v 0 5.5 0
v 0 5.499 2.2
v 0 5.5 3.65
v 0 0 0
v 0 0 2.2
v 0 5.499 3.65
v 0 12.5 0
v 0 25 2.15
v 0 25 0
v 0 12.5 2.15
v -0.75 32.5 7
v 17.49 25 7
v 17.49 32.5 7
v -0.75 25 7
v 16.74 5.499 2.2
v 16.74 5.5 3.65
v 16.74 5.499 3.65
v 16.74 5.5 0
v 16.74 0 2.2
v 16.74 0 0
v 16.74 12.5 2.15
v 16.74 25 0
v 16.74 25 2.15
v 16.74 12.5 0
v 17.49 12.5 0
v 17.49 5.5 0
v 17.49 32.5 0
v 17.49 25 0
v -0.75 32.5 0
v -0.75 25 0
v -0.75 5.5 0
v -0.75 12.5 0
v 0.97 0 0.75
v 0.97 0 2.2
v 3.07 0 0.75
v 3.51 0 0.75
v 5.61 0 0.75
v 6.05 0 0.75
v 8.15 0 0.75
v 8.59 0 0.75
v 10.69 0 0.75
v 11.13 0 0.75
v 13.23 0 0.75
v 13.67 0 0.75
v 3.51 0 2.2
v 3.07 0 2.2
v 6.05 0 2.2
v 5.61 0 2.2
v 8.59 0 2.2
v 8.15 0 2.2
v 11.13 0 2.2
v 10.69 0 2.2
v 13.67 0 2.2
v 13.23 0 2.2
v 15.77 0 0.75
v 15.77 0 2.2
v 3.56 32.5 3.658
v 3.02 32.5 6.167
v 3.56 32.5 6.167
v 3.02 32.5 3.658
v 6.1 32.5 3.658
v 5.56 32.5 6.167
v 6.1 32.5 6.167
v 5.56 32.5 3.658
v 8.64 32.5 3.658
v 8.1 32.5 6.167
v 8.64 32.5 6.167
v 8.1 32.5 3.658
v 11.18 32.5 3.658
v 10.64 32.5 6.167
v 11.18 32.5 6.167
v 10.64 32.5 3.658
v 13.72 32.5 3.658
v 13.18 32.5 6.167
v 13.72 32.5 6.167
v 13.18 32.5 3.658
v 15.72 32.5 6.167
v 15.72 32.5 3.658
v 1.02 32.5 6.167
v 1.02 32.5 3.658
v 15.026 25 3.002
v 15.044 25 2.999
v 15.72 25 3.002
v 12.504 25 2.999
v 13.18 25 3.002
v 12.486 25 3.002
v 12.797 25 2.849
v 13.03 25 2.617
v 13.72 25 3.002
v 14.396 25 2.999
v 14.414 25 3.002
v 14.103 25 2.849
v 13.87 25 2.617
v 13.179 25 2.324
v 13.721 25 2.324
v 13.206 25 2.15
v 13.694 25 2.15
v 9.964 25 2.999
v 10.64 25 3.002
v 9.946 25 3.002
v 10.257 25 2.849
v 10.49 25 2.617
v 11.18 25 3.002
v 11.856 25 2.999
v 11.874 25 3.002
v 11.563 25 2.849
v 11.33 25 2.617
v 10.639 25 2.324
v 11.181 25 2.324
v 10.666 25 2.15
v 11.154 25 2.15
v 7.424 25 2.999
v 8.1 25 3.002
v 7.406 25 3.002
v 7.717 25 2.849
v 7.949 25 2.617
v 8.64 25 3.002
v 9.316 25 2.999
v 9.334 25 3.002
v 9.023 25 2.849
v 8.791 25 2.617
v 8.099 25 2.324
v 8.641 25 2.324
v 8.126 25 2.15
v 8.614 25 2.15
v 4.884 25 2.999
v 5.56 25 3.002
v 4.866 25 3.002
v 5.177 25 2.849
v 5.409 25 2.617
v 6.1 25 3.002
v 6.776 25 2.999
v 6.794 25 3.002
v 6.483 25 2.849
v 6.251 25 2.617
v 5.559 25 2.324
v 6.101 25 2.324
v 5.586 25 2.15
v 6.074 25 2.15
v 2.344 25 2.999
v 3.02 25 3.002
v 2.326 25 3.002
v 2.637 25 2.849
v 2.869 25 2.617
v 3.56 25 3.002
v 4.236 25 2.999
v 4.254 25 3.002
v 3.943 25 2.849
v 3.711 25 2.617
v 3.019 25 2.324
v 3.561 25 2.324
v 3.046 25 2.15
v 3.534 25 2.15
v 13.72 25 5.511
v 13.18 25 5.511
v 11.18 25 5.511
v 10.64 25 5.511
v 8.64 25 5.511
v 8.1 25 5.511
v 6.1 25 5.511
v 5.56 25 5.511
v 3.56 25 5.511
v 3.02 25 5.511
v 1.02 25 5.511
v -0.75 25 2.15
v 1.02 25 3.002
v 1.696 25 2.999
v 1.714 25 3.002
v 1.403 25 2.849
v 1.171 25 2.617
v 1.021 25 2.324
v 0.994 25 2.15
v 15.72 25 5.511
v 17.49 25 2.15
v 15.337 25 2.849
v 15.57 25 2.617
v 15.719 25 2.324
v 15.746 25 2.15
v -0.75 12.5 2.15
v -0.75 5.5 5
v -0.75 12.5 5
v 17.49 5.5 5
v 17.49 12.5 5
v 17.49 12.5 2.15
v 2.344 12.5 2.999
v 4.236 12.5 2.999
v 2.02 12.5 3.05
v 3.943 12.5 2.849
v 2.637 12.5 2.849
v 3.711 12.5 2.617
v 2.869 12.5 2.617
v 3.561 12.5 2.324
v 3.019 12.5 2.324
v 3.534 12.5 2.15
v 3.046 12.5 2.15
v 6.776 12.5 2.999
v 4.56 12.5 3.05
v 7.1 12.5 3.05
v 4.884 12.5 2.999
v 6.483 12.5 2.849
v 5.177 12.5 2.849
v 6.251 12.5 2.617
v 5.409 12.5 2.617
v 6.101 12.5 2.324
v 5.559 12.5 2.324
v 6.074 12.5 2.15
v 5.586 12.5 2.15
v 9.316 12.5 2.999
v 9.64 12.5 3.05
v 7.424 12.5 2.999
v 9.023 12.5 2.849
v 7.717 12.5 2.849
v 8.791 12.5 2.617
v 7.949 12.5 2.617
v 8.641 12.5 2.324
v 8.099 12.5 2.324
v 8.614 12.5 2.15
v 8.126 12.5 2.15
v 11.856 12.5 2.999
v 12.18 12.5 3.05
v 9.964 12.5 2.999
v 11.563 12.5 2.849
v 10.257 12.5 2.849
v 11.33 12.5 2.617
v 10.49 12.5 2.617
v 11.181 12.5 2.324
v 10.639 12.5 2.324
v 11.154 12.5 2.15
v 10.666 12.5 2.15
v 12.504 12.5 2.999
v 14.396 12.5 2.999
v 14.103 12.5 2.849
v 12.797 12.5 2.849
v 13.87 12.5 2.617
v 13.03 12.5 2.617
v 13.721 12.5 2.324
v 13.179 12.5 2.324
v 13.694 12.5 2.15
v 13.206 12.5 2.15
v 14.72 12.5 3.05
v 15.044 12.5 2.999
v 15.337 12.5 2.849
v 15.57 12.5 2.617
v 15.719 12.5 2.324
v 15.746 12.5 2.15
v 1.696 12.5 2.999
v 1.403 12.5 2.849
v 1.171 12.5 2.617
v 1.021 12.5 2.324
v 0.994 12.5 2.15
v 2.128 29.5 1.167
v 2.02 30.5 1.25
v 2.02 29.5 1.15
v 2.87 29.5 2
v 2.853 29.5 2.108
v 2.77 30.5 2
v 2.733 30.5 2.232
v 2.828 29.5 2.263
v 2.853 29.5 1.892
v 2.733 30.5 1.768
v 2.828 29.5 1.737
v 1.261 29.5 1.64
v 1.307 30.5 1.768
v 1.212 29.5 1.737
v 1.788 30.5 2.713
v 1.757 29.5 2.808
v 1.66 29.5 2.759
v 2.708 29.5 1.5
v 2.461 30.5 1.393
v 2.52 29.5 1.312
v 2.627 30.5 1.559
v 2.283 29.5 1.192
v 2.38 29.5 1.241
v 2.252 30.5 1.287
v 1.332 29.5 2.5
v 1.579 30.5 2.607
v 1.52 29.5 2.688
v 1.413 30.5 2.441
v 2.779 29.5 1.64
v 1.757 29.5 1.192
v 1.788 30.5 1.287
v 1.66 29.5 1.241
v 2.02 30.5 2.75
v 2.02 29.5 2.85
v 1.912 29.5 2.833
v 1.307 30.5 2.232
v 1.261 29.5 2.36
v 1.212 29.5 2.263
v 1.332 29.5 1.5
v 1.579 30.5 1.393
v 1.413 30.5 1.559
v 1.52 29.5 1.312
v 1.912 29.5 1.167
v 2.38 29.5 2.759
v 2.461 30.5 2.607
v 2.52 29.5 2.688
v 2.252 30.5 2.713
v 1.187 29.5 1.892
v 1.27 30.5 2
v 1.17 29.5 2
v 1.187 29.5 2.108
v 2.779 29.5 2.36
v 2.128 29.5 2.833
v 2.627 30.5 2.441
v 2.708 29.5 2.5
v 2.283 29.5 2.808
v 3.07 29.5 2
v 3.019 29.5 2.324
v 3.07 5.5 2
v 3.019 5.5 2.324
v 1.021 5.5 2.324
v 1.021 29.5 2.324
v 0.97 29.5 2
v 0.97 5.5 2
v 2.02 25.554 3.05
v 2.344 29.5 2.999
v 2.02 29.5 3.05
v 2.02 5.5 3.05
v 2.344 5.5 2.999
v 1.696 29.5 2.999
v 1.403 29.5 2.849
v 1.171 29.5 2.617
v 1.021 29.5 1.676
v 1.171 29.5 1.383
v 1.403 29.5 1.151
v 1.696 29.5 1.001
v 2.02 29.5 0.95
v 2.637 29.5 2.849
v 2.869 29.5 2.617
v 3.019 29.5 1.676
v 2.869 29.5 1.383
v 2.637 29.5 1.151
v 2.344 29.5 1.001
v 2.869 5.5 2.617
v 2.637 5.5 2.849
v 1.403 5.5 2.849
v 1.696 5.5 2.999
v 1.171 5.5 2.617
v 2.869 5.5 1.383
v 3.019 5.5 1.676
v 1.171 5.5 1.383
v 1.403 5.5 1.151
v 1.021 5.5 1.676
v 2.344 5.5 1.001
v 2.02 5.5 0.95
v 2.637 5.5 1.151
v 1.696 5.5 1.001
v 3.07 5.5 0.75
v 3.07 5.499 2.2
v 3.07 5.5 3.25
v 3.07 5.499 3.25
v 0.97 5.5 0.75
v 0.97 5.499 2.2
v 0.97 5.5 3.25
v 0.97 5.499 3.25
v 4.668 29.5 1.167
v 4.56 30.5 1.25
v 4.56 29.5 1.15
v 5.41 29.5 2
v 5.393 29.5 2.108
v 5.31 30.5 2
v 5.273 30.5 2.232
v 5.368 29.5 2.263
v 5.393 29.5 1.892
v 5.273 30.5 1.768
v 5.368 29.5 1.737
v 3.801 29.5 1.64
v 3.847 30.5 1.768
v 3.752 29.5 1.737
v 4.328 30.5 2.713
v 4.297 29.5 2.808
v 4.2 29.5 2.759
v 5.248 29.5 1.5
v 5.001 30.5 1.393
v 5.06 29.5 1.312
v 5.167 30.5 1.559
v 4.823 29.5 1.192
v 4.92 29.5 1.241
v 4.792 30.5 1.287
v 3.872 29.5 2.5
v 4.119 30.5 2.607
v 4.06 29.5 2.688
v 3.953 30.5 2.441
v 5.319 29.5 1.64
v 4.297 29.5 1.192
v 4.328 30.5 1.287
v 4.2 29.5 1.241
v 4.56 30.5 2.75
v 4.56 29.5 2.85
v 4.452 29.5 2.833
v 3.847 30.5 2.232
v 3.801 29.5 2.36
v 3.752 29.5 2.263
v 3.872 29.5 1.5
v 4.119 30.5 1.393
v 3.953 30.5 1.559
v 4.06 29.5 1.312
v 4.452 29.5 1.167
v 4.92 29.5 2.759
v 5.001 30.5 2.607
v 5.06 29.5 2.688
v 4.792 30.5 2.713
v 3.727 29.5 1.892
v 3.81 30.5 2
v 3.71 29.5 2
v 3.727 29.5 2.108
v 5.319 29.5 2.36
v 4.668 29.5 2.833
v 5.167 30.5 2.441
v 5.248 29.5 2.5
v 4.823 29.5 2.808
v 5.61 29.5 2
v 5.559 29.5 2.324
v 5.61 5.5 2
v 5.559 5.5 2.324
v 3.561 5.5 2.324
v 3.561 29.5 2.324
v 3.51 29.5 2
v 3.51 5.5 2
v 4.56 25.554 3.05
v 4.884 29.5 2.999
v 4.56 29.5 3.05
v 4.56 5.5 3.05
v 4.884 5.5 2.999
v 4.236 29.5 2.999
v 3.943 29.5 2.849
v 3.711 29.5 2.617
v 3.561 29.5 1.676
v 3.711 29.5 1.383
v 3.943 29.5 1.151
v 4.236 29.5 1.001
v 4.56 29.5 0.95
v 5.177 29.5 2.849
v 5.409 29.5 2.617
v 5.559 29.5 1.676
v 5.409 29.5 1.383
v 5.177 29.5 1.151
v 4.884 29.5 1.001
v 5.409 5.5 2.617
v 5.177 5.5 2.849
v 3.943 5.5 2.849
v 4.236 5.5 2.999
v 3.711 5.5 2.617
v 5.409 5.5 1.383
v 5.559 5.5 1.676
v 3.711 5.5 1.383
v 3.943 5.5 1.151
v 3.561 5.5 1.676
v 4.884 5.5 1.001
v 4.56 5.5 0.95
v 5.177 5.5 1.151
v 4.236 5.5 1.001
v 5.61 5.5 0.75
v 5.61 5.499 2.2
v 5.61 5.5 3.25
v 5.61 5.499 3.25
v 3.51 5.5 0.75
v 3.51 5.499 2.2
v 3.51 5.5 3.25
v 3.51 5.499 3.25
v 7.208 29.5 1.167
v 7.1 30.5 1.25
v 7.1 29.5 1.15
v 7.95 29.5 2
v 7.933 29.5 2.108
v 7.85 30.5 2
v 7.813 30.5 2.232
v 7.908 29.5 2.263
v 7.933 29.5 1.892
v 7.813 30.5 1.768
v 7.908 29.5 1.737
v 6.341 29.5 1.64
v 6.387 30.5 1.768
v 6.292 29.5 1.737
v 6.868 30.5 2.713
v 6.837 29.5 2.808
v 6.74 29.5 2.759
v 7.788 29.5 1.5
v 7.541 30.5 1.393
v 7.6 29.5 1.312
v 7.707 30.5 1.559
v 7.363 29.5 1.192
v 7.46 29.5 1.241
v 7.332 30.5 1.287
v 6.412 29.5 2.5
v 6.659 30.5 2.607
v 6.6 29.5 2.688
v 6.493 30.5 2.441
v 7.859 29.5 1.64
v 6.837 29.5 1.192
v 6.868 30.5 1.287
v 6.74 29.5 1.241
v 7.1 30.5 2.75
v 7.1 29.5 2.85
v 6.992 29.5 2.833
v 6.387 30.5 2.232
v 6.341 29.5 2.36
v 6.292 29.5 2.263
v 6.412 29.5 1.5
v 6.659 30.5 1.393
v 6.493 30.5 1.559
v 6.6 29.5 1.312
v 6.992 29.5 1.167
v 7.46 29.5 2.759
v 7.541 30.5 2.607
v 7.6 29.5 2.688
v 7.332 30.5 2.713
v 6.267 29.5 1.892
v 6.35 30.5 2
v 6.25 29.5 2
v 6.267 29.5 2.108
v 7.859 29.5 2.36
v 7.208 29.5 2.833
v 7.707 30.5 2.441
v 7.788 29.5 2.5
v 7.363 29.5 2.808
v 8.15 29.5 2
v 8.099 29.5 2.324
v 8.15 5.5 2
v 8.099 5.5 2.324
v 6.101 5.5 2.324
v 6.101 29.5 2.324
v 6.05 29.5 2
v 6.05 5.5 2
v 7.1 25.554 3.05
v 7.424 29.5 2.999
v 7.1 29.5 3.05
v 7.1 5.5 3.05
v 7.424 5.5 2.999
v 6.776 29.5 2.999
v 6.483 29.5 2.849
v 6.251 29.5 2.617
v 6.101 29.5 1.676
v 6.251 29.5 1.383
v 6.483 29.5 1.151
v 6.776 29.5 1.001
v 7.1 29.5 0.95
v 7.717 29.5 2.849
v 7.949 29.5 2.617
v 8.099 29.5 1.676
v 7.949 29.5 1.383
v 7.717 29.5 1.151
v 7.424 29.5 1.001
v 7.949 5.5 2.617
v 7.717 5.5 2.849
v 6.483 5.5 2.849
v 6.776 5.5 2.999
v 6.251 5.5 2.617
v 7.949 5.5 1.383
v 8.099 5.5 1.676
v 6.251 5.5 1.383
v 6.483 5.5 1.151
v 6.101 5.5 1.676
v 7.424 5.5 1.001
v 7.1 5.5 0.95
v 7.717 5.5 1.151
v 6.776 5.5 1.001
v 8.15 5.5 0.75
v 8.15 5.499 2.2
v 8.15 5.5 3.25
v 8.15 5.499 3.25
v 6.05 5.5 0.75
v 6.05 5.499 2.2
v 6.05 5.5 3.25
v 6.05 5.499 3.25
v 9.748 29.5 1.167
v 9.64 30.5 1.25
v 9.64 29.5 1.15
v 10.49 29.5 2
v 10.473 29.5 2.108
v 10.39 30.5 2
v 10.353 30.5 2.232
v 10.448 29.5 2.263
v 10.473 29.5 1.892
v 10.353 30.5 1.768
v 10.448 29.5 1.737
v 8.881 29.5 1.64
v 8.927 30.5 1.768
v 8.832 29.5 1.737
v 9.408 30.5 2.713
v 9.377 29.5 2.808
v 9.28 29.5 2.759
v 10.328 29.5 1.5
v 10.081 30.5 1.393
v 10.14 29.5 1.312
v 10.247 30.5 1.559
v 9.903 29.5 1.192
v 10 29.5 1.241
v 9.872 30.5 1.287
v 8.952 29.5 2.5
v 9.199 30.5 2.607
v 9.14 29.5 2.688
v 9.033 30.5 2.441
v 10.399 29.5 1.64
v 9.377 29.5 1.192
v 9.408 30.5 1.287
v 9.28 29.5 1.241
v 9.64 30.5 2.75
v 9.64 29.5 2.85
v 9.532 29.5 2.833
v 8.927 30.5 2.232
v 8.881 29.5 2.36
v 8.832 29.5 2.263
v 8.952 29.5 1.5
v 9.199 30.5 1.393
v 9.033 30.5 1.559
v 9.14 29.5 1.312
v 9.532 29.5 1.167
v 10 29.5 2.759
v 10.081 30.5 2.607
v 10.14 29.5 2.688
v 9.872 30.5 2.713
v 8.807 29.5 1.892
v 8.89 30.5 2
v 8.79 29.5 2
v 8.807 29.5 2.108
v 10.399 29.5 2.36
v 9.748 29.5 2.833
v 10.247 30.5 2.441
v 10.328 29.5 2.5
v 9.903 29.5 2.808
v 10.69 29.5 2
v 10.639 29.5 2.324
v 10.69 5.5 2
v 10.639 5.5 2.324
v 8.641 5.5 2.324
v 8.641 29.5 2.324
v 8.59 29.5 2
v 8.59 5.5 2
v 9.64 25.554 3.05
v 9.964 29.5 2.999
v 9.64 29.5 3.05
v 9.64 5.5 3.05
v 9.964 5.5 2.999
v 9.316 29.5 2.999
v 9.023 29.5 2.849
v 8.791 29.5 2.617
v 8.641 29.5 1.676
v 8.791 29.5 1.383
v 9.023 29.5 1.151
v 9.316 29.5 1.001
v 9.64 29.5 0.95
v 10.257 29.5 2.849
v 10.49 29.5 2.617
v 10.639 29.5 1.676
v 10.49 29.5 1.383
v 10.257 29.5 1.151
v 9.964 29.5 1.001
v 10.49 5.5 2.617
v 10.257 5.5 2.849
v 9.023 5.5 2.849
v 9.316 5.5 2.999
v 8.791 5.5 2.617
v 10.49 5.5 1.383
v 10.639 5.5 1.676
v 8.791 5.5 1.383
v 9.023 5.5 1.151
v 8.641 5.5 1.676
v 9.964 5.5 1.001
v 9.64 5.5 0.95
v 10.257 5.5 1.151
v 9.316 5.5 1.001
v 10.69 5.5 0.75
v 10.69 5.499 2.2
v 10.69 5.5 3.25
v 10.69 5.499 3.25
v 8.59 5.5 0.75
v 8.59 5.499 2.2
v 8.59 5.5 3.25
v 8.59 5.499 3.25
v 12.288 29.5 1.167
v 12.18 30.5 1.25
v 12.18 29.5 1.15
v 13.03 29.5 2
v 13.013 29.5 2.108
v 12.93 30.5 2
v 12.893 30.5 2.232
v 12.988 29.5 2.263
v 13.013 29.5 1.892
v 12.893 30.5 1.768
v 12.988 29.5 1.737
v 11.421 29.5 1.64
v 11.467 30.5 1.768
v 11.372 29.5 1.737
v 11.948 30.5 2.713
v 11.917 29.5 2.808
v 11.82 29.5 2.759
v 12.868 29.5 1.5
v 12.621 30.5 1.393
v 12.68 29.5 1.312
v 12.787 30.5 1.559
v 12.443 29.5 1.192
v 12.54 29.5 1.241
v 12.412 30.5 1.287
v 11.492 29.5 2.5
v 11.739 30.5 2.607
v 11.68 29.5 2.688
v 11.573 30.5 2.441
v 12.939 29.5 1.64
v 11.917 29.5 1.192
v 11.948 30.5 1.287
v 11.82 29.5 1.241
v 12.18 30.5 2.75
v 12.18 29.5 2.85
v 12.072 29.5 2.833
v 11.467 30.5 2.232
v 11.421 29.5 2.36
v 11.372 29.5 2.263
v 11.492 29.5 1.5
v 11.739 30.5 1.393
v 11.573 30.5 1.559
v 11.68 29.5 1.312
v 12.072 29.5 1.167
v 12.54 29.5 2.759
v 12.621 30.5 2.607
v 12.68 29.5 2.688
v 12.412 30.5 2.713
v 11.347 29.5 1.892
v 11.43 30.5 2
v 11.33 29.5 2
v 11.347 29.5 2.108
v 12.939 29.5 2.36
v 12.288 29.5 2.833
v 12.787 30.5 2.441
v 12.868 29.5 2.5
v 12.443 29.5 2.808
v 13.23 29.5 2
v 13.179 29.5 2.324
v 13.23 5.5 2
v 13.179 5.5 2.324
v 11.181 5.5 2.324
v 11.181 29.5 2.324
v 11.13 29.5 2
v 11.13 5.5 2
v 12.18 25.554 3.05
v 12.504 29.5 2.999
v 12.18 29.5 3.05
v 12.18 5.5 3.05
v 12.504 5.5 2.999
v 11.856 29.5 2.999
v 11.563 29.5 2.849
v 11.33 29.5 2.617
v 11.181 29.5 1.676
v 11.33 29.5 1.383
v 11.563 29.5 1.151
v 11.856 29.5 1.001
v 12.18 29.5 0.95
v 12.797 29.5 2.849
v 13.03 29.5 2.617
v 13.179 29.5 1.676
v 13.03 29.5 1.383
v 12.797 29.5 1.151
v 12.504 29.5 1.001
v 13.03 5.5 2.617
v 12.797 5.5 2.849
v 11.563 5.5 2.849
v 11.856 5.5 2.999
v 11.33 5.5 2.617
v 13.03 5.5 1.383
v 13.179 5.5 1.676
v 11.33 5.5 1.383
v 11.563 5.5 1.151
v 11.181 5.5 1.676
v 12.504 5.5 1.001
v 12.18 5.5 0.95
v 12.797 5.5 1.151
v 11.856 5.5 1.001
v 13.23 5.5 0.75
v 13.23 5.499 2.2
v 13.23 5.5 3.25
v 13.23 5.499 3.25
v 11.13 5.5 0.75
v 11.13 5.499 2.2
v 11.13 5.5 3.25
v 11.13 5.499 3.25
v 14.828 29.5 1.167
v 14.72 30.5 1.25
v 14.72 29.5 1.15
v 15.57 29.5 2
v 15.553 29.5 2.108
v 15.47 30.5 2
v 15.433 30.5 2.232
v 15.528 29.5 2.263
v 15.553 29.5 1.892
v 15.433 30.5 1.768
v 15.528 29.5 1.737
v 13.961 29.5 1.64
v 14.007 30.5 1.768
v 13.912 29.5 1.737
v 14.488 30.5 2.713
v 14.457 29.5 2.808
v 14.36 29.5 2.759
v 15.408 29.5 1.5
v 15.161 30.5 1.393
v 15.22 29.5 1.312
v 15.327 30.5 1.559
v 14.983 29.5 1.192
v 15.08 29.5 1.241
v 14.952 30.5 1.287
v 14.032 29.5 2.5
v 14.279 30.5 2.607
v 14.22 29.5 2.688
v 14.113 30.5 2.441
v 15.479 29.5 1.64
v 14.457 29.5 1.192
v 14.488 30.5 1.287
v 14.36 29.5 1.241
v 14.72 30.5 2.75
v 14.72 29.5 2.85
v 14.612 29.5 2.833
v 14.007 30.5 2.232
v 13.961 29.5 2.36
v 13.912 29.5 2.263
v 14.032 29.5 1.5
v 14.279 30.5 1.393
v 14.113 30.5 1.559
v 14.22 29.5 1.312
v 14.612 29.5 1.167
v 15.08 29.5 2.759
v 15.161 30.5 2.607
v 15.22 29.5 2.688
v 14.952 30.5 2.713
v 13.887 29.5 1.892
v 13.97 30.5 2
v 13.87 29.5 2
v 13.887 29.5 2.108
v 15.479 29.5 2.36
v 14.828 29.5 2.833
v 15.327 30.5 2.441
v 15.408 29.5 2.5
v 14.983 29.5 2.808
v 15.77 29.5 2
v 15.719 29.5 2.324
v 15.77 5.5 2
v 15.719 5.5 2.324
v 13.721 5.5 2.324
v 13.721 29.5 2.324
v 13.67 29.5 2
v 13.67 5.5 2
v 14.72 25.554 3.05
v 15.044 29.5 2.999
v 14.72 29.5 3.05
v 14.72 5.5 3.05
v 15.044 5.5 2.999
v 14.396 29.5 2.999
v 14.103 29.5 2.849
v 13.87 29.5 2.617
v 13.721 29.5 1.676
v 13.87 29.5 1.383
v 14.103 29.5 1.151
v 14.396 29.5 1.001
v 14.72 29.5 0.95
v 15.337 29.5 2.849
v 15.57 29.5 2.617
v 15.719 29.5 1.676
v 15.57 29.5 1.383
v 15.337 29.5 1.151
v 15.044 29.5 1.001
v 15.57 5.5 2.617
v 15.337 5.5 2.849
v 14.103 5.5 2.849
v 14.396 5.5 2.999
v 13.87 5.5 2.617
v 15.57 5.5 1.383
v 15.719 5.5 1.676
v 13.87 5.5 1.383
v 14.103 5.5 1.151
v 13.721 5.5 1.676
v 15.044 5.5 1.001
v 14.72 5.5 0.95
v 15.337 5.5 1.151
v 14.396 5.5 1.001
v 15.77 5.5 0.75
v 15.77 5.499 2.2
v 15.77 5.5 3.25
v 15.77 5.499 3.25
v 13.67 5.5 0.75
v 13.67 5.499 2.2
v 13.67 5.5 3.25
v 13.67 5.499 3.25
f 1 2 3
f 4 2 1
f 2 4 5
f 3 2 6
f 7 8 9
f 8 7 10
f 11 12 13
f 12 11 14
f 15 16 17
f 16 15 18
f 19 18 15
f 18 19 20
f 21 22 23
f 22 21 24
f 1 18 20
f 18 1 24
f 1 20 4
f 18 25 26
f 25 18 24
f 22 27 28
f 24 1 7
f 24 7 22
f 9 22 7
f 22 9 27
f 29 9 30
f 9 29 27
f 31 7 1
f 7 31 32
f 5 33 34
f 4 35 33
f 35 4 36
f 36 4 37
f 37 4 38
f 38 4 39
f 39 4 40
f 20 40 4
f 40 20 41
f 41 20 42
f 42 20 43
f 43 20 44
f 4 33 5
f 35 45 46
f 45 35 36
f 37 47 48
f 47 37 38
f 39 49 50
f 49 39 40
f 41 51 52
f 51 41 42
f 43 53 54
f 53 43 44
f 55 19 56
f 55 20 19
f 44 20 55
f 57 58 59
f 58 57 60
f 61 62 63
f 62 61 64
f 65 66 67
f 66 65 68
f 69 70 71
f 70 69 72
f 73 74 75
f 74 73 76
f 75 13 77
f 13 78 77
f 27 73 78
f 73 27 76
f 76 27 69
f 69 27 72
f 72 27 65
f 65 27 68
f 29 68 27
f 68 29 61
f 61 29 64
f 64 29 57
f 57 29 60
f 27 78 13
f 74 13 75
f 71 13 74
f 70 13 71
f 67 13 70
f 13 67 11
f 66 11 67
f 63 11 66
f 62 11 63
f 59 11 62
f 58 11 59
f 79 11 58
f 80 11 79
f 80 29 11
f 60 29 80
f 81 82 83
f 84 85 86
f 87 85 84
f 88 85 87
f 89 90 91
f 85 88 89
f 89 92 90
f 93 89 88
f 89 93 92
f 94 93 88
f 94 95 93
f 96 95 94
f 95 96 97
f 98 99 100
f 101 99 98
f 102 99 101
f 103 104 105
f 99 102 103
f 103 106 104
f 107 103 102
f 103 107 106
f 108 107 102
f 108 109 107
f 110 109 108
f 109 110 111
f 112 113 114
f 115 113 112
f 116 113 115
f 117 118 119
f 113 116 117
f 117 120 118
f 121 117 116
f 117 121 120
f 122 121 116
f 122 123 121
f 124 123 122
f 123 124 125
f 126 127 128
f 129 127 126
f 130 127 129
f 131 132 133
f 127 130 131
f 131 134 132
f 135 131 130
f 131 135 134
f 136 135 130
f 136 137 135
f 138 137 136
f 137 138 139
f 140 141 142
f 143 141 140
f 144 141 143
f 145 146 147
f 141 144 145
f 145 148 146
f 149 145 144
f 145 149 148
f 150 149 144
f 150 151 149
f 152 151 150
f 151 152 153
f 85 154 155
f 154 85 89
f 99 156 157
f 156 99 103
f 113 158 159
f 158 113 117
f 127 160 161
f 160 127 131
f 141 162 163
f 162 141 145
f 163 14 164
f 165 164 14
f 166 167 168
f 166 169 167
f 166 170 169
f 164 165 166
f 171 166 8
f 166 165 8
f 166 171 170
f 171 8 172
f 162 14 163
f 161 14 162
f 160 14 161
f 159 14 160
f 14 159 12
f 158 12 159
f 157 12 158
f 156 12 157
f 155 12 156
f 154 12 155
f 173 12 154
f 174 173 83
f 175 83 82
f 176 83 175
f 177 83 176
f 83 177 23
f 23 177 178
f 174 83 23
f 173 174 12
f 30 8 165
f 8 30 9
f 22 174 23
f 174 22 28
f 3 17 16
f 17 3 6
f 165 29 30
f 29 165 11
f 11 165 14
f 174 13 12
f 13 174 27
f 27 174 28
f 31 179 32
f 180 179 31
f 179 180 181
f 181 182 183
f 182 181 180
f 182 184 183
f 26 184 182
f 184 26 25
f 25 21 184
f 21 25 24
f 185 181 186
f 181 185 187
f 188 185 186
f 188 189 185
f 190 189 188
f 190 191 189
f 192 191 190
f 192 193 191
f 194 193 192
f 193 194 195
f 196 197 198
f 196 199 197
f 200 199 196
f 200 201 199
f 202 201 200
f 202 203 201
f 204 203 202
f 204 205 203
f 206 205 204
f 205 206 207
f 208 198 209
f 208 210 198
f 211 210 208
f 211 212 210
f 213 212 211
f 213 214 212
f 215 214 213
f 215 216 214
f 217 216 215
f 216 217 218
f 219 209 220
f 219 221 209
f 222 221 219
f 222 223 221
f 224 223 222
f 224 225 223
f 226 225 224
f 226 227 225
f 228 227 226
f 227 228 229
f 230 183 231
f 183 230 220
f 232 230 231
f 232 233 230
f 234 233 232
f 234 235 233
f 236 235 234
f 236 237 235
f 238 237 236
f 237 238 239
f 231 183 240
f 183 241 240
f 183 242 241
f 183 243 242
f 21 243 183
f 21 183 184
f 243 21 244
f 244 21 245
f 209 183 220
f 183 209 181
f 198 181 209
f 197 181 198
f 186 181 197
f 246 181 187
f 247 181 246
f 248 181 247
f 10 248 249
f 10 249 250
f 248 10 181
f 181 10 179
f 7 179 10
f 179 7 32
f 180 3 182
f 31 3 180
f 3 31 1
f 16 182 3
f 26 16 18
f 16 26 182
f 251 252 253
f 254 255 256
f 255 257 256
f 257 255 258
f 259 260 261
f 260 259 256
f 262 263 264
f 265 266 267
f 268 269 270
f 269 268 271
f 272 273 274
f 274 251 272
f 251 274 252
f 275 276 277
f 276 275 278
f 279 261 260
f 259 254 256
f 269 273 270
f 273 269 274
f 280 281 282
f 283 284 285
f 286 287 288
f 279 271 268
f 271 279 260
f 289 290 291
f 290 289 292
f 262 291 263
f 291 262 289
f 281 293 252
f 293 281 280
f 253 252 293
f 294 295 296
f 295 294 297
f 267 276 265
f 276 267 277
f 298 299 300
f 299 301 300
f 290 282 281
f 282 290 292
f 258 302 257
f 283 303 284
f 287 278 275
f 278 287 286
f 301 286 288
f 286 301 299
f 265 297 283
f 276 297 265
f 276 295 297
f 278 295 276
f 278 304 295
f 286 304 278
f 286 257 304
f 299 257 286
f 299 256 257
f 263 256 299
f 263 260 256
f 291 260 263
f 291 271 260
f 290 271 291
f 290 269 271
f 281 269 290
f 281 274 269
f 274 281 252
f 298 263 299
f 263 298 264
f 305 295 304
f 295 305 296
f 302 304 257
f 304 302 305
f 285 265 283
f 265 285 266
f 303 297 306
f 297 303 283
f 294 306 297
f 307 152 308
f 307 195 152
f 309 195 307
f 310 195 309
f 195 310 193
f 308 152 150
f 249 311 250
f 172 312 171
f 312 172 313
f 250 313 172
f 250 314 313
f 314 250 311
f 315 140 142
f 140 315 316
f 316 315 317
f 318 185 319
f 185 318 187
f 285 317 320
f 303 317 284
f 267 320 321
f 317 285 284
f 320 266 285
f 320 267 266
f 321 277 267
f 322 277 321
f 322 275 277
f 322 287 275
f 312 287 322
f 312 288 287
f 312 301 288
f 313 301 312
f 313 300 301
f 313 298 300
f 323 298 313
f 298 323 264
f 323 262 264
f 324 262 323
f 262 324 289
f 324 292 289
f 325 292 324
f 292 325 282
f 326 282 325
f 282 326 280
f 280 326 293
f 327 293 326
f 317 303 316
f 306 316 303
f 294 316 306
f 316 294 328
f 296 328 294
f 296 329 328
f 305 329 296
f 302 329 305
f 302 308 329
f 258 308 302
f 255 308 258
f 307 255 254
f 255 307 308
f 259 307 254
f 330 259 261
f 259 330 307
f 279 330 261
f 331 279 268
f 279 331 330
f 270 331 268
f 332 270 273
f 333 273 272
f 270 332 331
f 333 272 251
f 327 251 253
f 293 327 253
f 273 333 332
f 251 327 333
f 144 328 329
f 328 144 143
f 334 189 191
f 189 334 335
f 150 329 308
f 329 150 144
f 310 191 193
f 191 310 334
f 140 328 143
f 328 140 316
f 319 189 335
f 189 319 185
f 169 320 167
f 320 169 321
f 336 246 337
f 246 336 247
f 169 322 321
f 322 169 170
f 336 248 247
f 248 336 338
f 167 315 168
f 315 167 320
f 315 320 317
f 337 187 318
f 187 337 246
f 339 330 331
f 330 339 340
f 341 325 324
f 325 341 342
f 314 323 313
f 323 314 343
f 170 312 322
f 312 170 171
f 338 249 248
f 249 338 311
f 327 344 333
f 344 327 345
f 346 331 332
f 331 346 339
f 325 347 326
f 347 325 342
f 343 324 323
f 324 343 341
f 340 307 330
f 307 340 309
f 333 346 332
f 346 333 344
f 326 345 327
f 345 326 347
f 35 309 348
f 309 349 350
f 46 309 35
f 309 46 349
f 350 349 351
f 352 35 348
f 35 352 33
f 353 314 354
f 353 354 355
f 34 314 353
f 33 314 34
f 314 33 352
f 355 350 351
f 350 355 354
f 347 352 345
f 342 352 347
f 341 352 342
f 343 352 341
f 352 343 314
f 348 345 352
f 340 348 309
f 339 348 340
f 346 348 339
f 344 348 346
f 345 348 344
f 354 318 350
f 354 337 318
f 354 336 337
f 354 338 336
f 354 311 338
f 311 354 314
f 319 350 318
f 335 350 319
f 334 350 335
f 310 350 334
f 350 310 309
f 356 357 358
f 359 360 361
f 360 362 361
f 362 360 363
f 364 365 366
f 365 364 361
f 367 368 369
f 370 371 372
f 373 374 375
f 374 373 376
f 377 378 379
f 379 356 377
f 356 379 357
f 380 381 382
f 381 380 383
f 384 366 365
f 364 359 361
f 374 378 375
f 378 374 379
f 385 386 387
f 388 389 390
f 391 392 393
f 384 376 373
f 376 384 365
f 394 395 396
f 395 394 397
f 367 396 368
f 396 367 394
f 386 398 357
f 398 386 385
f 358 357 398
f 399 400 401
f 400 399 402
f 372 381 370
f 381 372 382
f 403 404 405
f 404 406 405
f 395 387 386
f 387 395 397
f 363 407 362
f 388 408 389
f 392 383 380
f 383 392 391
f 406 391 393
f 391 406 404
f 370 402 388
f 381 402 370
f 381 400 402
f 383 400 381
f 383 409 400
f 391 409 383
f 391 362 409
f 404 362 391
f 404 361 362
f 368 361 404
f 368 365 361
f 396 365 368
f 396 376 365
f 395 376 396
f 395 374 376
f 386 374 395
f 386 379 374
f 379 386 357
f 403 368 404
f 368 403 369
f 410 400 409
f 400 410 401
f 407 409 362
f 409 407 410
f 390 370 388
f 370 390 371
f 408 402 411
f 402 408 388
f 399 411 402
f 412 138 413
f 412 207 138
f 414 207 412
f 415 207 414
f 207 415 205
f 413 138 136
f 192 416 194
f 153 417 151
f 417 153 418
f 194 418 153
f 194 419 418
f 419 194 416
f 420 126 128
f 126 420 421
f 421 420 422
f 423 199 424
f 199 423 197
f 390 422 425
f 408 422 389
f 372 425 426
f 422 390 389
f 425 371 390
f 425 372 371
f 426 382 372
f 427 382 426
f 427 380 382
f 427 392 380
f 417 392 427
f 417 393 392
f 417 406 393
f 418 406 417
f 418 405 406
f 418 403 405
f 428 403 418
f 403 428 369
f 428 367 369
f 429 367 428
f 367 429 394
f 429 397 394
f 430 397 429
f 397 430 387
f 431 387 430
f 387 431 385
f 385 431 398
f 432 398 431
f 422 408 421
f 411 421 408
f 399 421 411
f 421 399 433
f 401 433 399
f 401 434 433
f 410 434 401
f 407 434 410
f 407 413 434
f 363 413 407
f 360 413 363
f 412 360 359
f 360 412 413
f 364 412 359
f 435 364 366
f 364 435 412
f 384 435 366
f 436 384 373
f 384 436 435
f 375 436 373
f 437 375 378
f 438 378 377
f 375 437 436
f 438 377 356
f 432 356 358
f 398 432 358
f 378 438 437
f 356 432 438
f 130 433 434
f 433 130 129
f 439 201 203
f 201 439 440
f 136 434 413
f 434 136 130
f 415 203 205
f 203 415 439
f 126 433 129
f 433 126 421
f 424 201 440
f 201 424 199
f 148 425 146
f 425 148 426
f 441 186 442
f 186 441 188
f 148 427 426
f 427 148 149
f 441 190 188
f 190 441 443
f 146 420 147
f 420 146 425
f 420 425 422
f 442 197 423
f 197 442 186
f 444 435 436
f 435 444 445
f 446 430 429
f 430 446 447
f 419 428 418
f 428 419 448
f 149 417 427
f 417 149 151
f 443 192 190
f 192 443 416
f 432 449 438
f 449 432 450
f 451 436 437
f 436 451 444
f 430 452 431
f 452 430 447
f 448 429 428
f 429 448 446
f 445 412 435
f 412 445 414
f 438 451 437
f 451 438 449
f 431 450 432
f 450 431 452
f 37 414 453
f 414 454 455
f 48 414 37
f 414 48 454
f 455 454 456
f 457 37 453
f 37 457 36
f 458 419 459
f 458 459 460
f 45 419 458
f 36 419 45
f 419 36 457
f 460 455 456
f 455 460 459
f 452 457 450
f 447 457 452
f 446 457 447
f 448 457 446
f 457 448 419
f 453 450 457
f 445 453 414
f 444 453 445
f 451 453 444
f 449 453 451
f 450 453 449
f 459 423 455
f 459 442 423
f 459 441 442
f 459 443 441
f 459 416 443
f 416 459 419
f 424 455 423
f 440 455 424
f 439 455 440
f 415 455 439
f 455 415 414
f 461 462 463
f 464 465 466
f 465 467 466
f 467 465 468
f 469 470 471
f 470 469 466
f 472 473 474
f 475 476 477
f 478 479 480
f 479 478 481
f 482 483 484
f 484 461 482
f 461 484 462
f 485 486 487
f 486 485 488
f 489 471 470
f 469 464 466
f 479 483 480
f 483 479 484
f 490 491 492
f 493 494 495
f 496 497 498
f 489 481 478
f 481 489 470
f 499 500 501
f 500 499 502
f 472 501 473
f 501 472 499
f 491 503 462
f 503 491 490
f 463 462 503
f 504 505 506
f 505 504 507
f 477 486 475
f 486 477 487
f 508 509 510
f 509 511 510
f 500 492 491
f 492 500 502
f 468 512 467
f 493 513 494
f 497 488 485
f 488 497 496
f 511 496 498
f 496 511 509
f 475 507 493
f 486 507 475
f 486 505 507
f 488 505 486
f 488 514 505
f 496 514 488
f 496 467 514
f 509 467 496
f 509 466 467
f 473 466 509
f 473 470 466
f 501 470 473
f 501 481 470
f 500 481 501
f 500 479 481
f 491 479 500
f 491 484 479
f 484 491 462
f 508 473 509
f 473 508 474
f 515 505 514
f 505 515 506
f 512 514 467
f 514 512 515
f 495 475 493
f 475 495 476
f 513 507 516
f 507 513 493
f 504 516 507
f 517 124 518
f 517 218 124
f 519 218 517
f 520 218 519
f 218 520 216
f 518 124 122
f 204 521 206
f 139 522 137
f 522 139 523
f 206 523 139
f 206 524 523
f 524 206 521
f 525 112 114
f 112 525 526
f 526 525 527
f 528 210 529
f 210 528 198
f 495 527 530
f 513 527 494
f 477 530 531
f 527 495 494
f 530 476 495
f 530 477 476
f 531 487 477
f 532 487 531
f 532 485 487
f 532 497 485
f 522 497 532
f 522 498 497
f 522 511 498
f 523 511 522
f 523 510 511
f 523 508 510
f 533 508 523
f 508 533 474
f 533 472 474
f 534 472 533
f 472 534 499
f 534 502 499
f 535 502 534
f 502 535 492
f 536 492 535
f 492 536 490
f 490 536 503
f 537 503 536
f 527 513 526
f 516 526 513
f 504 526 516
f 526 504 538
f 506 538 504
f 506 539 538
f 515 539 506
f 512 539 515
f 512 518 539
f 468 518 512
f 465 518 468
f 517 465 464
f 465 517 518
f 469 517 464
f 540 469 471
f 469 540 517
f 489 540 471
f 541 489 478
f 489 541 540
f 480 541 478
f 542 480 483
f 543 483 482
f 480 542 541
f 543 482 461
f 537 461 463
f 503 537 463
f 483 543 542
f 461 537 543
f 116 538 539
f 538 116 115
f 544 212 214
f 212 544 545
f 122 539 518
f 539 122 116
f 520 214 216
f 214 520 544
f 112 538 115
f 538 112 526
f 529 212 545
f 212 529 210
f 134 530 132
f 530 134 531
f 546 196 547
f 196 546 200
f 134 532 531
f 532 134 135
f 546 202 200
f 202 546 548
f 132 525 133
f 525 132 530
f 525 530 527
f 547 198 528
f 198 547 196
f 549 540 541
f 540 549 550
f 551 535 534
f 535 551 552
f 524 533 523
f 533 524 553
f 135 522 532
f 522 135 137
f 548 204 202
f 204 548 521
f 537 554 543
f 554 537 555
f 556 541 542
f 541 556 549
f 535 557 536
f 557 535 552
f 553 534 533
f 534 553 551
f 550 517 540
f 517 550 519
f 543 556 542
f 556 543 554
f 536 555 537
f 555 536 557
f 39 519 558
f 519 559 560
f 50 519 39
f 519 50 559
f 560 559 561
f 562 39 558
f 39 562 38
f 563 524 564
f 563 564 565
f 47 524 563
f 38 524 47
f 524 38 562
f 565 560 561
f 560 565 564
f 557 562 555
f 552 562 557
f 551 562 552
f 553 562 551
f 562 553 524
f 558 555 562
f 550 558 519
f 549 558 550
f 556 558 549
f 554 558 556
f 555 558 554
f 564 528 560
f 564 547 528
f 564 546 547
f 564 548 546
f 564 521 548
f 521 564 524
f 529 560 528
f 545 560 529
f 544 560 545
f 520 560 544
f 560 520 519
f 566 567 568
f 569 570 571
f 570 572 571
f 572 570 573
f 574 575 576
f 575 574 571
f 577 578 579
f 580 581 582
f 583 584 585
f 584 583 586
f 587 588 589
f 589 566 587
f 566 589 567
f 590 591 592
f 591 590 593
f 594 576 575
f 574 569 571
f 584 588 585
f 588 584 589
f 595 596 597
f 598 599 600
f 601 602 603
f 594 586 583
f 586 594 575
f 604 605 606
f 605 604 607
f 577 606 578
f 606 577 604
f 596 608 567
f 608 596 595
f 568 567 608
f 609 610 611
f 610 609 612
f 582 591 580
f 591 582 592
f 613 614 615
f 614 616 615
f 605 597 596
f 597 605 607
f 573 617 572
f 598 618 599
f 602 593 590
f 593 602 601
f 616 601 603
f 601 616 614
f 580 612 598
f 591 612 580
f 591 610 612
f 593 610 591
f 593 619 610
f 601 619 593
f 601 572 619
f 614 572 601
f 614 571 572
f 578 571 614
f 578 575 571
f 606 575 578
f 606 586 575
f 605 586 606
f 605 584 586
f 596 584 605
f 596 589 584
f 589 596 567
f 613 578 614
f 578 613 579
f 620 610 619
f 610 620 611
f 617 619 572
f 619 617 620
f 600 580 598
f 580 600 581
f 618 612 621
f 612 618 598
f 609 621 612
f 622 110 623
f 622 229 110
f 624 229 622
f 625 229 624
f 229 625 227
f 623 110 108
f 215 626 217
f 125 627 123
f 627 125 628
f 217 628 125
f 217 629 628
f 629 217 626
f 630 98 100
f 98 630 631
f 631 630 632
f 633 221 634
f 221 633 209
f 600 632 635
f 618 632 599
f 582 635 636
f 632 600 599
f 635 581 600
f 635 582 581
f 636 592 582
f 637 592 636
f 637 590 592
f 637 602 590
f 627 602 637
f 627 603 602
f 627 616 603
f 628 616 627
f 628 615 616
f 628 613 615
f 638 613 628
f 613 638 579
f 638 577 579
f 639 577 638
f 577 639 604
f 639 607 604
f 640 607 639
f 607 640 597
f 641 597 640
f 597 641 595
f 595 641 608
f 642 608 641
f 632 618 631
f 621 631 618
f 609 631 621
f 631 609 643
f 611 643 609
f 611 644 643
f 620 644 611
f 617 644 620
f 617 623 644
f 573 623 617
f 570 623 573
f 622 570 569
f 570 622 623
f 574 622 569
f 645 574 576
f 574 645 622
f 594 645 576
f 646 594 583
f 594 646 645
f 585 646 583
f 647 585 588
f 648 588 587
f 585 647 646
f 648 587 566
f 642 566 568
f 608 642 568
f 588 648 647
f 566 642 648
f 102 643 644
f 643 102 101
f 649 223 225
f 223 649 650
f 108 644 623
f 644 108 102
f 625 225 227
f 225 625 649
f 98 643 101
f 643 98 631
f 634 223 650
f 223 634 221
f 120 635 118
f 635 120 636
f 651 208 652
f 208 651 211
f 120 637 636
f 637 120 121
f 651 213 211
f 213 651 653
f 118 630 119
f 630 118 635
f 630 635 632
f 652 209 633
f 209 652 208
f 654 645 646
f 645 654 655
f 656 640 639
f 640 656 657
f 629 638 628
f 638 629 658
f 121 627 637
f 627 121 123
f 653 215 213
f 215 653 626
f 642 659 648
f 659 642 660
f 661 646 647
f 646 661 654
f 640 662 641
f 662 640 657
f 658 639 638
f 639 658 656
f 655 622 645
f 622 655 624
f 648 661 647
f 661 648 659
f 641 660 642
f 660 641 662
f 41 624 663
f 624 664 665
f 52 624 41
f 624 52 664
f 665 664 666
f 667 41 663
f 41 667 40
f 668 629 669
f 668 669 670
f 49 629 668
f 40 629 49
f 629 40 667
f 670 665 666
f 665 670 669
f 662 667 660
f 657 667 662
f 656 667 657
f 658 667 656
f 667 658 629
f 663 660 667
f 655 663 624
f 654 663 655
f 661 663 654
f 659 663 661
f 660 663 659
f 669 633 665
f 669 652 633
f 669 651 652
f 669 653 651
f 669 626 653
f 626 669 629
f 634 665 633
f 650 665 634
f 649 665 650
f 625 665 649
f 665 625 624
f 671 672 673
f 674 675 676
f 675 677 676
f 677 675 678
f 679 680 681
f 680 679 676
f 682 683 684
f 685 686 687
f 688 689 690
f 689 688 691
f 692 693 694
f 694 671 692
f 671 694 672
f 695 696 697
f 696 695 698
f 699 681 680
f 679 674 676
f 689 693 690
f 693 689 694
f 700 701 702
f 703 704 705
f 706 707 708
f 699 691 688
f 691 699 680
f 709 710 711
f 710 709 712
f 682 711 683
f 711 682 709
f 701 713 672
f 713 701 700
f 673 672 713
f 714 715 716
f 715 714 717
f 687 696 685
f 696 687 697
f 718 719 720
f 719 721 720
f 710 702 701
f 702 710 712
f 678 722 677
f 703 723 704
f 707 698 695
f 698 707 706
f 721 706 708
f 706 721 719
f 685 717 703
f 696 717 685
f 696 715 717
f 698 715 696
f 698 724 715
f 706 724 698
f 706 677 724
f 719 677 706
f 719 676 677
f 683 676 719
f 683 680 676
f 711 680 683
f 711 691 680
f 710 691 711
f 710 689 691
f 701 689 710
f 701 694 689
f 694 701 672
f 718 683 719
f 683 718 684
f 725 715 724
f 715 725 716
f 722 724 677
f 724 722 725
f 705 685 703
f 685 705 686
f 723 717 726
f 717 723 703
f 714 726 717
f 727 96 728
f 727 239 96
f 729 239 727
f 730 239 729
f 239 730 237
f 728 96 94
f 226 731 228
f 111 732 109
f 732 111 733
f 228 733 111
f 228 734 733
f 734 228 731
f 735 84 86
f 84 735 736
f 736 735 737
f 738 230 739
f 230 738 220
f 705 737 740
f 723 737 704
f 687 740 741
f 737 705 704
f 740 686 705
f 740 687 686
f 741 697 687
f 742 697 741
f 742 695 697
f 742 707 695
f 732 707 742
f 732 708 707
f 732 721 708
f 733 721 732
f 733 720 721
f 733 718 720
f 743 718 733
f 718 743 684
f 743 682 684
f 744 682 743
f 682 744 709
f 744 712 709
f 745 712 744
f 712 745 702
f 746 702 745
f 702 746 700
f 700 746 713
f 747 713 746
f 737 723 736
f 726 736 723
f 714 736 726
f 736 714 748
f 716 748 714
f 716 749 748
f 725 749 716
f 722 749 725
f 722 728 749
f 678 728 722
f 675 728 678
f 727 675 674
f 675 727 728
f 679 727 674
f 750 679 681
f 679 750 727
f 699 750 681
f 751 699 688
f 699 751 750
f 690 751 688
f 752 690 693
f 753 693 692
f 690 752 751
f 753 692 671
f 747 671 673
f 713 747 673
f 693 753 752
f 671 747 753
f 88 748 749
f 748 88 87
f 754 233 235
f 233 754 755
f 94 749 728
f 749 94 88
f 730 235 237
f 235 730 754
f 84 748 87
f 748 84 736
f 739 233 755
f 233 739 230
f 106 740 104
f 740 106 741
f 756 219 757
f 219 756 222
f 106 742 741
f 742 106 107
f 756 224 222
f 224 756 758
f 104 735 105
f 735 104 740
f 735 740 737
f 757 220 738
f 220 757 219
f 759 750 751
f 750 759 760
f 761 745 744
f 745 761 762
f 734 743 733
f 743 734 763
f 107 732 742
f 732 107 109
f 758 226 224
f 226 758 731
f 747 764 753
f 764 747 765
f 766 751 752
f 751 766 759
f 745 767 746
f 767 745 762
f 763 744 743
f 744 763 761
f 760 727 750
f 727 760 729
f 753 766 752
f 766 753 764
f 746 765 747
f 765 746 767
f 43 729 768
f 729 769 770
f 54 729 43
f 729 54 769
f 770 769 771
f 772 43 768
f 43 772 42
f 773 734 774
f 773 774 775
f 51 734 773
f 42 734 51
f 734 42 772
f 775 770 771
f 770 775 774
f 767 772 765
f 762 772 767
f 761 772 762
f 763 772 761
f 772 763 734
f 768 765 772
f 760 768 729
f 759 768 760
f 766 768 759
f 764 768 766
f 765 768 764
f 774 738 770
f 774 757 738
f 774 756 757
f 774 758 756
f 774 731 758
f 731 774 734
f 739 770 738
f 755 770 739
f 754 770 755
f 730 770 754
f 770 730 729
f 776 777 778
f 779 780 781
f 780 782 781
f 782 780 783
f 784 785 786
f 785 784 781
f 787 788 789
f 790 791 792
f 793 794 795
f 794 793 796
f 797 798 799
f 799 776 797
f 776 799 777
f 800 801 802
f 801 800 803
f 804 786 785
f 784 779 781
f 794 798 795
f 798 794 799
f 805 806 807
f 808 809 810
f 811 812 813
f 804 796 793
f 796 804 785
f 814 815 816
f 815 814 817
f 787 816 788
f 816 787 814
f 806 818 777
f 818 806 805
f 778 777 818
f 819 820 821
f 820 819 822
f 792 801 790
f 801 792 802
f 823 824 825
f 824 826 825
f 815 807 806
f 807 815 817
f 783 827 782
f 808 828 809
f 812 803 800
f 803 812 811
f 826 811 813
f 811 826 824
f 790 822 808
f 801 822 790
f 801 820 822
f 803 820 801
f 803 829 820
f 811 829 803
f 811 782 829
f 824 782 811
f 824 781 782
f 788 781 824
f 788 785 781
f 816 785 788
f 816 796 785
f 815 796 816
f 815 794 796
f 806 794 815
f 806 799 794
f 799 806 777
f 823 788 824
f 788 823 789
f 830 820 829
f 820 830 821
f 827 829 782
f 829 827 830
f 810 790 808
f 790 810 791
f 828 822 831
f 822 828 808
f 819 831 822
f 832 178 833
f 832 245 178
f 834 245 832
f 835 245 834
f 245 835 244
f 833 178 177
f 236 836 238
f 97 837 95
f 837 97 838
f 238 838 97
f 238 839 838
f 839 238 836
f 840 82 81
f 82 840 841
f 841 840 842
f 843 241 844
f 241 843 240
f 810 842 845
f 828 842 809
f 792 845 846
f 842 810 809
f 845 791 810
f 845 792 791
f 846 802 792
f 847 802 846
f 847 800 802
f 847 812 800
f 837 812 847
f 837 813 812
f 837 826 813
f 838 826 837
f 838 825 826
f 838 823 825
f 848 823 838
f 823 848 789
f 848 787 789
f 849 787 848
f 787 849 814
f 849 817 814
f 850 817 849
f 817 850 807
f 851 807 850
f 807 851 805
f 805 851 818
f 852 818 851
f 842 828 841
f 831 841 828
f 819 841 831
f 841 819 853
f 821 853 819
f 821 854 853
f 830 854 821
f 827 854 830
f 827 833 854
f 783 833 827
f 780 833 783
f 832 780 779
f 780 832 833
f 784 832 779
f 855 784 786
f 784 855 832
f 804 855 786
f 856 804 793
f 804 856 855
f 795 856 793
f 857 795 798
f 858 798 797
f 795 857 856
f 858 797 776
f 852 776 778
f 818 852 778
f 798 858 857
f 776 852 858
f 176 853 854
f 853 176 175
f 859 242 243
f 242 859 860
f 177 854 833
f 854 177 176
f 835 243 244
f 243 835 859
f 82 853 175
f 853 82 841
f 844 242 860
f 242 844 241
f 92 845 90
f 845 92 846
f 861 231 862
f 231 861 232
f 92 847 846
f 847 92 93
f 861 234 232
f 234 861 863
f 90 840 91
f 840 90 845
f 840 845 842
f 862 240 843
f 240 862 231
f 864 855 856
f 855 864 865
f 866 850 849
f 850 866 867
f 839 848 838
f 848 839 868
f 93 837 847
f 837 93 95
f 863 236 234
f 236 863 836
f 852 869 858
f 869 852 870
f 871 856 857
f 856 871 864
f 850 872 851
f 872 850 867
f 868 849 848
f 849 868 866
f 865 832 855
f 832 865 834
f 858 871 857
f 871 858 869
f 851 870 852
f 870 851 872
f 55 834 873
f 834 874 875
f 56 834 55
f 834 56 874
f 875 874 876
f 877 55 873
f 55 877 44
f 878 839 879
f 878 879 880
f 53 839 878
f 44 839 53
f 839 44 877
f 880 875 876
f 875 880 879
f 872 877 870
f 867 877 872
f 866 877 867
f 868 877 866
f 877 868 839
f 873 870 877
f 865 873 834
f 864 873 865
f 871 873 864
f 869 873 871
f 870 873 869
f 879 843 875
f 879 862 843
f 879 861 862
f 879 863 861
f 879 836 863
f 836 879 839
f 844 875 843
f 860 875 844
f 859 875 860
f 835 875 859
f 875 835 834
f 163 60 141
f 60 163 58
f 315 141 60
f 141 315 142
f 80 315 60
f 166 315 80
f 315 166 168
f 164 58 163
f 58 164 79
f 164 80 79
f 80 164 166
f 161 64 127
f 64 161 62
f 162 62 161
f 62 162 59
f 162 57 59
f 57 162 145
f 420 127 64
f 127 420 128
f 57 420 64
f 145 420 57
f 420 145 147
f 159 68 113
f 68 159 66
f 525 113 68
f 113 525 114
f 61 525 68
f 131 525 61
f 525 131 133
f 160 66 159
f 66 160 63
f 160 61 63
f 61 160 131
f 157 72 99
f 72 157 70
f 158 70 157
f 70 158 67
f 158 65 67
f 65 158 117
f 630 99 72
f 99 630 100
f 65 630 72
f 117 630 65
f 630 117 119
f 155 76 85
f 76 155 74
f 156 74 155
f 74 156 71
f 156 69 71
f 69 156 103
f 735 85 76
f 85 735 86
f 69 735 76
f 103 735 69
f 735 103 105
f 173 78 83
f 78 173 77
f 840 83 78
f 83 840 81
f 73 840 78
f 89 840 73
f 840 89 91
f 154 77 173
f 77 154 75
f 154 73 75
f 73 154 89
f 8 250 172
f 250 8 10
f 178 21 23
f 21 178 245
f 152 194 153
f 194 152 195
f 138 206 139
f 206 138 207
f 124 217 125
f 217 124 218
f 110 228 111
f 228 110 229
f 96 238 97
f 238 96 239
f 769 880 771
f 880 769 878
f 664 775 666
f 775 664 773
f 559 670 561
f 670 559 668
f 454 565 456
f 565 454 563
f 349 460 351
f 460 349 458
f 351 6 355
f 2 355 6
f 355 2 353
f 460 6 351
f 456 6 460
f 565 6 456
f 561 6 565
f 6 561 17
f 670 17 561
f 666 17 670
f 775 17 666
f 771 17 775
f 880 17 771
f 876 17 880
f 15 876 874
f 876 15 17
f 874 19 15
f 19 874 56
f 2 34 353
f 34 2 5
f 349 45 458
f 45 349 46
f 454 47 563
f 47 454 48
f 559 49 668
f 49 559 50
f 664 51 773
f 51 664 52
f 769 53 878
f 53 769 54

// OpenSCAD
$fn=20;
/*
  Pogo Pin Serial Adaptor (Customisable)
  Author: Brian Khuu 2019
  
  This is similar to https://hackaday.com/2017/08/04/pogo-pin-serial-adapter-thing/
  But is fully 3D printed without need for PCB. This may be useful for Arduino serial adaptors.
  
  I used P100-E2 probes for this
*/

// Designed For Printer Nozzle
printer_nozzle=0.4;

// Base Thickness
base_thickness = 0.1;

/* probe pin spec */
ppext = 8; // Probe extention length
ppbody = 25; // Body of the probe
ppdia = 1.5; // probe pin diameter

ppdiatol = 0.6; // tolerance for fitting
ppinset = 2.5;

ppdiaoutset = ppext-ppinset; // How far to space out to allow for side fits
echo(ppdiaoutset);

/* Castellated Module Pin Spacing and count */

// Pin Count
ppc = 6;

// Pin Spacing
pps = 2.54;

// PCB Thickness
pcb_thickness = 1.1; // 1mm Open Log Clone

// PCB Probe Offset
pcb_probe_offset = 1.3;

/* Clip */
clip_tab = 5; // Clip tab to more easily open the clip

/* pcb */
pcb_h = 2; // pcb thickness

/* calc */
boxx = ppc * pps + ppdia;
boxy = 2 + ppbody + ppdiaoutset;
boxh = base_thickness+pcb_probe_offset+ppdiatol+5;

module probe_pin_req()
{
  inset=0;
  translate([0,0,-ppbody])
  union()
  {
    translate([0,0,0])
      cylinder(r1=(ppdia)/2,r2=(ppdia+ppdiatol)/2, h=3);
    translate([0,0,1])
      cylinder(r=(ppdia+ppdiatol)/2, h=ppbody+ppext+1);
    %color("gold") cylinder(r=ppdia/2, h=ppbody);
    %color("silver") translate([0,0,ppbody])
      cylinder(r=ppdia/2, r2=0, h=ppext);
  }
}

module openlog_clone_programmer_jig()
{
  difference()
  {  
    /* Bulk */
    union()
    {
      difference()
      {
        cube([boxx,boxy,boxh]);
        translate([-5, 0, base_thickness+pcb_probe_offset+ppdia*1.5]) 
          cube([ppc * pps+10,ppbody, 5]);
      }
      translate([-(ppdia)/2, ppdiaoutset+7+ppbody/2, 0]) 
        cube([boxx+(ppdia),boxy-(ppdiaoutset+7+ppbody/2), boxh]);
      translate([-(ppdia)/2, ppdiaoutset, 0]) 
        cube([boxx+(ppdia),7, 5]);
    }

    /* Probe Access Cutout */
    translate([-5, ppdiaoutset+7, base_thickness+pcb_probe_offset+ppdia/2]) 
      cube([ppc * pps+10,ppbody/2, boxh]);
      
    /* Module Cutout */
    translate([0, -0.001, base_thickness+ppdia+ppdiatol]) 
      cube([boxx,ppdiaoutset, boxh]);
      
    /* Probe */
    for ( xi = [0 : 1 : ppc-1] )
    {
      translate([ppdia/2+pps/2+pps*xi, 0, base_thickness])
      union()
      {
        translate([0, ppdiaoutset, pcb_probe_offset+ppdiatol])
          rotate([90,0,0])
          probe_pin_req();
        
        translate([0, ppdiaoutset, pcb_probe_offset+ppdiatol])
          rotate([180,0,0])
            translate([0, (ppdiaoutset)/2, 0])
              cube([ppdia+ppdiatol,(ppdiaoutset),ppdia+1], center=true);
      }
    }
    
    /* Wire Guide (To solder onto the probe) */
    for ( xii = [0 : 1 : ppc-1] )
    {
      translate([ppdia/2+pps/2+pps*xii, boxy+1, base_thickness+ppdia+1.5+pcb_probe_offset+ppdiatol])
        rotate([95,0,0])
          cube([2,2.5,20],center=true);
    }
  }
}

openlog_clone_programmer_jig();
